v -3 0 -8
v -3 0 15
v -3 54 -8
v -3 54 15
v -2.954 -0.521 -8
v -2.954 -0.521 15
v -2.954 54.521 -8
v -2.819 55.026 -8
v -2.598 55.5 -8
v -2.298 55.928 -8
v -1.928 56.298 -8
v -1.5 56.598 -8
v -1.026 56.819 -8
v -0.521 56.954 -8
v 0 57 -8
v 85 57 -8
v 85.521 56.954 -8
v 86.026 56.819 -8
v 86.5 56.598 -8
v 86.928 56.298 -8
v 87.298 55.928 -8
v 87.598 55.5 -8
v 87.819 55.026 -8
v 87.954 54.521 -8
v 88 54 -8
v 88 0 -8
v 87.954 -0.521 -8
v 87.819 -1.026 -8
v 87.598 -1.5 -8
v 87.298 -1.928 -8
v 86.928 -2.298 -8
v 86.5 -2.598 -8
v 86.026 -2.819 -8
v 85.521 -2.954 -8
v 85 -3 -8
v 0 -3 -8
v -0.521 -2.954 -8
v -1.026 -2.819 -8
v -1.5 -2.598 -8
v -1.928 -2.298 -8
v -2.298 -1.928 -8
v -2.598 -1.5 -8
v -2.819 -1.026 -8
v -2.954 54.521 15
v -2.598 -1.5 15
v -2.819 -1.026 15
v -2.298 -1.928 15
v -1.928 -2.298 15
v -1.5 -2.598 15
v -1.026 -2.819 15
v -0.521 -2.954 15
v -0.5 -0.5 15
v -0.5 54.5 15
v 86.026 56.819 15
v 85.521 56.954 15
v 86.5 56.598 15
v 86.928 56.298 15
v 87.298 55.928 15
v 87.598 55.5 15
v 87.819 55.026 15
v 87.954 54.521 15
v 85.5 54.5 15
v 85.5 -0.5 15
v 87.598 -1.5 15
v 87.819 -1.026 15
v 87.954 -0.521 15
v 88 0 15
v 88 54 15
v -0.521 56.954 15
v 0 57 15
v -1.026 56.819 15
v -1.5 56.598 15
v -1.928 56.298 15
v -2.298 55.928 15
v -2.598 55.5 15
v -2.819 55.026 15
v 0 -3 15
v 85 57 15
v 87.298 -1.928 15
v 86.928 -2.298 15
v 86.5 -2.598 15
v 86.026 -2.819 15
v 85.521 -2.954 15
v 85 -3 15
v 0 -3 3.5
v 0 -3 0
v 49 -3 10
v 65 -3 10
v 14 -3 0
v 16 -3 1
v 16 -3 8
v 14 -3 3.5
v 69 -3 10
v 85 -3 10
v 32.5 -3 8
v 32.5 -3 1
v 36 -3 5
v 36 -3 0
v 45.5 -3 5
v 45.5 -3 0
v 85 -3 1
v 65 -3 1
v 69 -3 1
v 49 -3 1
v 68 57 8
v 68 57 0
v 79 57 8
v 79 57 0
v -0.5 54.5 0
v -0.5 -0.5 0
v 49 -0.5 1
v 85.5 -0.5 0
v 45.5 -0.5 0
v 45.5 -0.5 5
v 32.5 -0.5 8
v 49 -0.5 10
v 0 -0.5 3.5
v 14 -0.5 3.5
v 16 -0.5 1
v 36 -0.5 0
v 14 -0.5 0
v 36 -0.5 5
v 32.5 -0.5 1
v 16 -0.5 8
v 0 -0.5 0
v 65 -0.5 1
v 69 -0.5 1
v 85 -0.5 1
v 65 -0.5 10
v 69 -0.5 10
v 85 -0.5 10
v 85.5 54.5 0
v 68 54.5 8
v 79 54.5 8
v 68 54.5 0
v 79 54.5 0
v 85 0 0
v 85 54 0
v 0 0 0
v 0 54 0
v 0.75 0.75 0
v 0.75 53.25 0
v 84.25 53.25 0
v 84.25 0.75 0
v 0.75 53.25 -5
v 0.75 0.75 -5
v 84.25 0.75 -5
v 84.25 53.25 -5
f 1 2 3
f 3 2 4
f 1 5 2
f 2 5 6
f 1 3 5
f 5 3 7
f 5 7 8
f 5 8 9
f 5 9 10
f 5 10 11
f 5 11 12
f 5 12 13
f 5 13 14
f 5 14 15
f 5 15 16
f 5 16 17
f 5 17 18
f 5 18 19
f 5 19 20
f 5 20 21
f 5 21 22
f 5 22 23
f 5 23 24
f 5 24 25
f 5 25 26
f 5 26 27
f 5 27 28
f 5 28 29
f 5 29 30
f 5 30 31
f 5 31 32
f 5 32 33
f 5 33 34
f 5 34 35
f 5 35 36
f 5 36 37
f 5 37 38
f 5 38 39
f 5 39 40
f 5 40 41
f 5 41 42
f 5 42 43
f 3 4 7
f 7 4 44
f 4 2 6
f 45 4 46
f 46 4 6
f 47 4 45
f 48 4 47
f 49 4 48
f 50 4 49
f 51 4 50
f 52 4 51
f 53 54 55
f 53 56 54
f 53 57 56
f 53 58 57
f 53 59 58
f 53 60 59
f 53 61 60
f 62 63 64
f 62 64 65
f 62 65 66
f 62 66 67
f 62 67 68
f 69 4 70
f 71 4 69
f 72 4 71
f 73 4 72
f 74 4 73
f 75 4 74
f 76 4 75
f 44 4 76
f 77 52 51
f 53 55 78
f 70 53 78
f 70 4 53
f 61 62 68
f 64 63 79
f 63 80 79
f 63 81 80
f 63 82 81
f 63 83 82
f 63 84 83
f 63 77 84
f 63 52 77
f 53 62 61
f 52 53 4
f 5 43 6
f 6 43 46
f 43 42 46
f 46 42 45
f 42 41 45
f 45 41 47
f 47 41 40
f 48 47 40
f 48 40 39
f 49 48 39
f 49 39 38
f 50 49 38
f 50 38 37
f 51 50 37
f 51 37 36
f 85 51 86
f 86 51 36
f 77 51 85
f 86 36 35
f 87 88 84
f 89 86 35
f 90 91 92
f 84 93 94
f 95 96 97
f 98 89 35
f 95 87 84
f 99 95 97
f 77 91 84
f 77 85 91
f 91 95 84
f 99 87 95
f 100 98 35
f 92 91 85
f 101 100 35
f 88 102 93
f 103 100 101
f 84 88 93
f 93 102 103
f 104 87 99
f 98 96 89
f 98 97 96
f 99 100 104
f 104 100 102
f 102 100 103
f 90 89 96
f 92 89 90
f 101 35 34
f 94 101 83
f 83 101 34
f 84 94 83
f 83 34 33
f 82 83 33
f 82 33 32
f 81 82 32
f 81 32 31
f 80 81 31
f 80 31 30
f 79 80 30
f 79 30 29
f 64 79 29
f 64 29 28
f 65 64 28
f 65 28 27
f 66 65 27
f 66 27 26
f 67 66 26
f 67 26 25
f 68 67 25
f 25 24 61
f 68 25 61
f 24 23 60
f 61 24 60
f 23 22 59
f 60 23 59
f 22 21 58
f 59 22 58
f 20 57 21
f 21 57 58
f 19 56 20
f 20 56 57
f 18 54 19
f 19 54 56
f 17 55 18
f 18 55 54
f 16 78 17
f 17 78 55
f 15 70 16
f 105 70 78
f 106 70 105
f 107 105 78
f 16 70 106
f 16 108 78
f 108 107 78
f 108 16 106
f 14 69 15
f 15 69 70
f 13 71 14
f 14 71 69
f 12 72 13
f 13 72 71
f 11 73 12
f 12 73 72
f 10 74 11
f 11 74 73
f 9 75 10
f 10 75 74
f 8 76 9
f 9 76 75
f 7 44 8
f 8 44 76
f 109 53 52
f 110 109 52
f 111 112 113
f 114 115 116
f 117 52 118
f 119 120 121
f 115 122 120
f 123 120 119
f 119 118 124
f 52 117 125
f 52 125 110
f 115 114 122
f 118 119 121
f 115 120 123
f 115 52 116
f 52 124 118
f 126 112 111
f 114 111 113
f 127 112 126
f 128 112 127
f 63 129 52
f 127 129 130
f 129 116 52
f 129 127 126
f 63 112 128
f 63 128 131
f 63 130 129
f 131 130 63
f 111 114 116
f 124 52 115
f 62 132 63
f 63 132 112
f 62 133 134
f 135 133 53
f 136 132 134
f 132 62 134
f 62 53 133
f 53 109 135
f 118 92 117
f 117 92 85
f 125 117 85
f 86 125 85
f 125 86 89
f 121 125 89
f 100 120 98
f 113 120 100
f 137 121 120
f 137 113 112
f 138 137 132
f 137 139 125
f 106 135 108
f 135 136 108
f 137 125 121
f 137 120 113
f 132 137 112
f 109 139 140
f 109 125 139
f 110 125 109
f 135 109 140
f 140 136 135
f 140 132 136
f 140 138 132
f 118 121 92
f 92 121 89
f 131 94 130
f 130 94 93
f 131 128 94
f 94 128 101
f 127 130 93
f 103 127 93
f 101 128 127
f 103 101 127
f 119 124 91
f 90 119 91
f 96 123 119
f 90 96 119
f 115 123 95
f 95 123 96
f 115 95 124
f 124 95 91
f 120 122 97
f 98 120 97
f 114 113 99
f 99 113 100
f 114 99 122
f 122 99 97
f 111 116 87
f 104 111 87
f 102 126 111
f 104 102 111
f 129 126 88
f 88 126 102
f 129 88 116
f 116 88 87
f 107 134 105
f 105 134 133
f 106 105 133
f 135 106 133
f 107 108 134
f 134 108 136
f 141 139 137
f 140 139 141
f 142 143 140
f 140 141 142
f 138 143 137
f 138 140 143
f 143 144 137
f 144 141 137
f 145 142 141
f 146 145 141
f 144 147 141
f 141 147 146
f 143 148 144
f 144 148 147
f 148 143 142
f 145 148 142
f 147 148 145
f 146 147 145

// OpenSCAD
r = 2.0; /* connector relief */
l = 0.75; /* ledge thickness */ 
t = 3.0; /* thickness */
h = 20.0; /* height */
b = 5.0; /* bottom clearance */
difference() {
union() {
/* front face */
difference() {
	translate([0, -t, -b]) {
		cube([85, t, h]);
	}
	union() {
		translate([1 - (r/2), -t, 1 - (r/2)]) {
			cube([12 + r, 15, 1.5 + r]);
		}
		translate([17 - (r/2), -t, 2 - (r/2)]) {
			cube([14.5 + r, 9, 5 + r]);
		}
		translate([37 - (r/2), -t, 1 - (r/2)]) {
			cube([7.5 + r, 5.25 , 3 + r]);
		}
		translate([50 - (r/2), -t, 2 - (r/2)]) {
			cube([14 + r, 14 , 7 + r]);
		}
		translate([70 - (r/2), -t, 2 - (r/2)]) {
			cube([14 + r, 14 , 7 + r]);
		}
	}
}

/* left face */
intersection() {
	translate([0, 0, -b - t]) {
		cylinder(h = h + t, r1 = t, r2 = t, $fn = 36);
	}
	translate([-t, -t, -b - t]) {
		cube([t, t, h + t]);
	}
}
translate([-t, 0, -b - t]) {
	cube([t, 54, h + t]);
}
intersection() {
	translate([0, 54, -b - t]) {
		cylinder(h = h + t, r1 = t, r2 = t, $fn = 36);
	}
	translate([-t, 54, -b - t]) {
		cube([t, t, h + t]);
	}
}

/* right face */
intersection() {
	translate([85, 0, -b - t]) {
		cylinder(h = h + t, r1 = t, r2 = t, $fn = 36);
	}
	translate([85, -t, -b - t]) {
		cube([t, t, h + t]);
	}
}
translate([85, 0, -b - t]) {
	cube([t, 54, h + t]);
}
intersection() {
	translate([85, 54, -b - t]) {
		cylinder(h = h + t, r1 = t, r2 = t, $fn = 36);
	}
	translate([85, 54, -b - t]) {
		cube([t, t, h + t]);
	}
}

/* back face */
difference() {
	translate([0, 54, -b]) {
		cube([85, t, h]);
	}
	translate([69 - (r/2), 42 + t, 1 - (r/2)]) {
		cube([9 + r, 12 , 6 + r]);
	}
}

/* bottom face */
translate([0, -t, -b - t]) {
	cube([85, 54 + 2*t, t]);
}
}

translate([-.5, -.5, 0]) {
	cube([85+1, 54+1, h]);
}

}

/* ledge */
difference() {
	translate([0, 0, -b]) {
		cube([85, 54, b]);
	}
	translate([l, l, -b]) {
		cube([85 - 2*l, 54 - 2*l, b]);
	}
}
